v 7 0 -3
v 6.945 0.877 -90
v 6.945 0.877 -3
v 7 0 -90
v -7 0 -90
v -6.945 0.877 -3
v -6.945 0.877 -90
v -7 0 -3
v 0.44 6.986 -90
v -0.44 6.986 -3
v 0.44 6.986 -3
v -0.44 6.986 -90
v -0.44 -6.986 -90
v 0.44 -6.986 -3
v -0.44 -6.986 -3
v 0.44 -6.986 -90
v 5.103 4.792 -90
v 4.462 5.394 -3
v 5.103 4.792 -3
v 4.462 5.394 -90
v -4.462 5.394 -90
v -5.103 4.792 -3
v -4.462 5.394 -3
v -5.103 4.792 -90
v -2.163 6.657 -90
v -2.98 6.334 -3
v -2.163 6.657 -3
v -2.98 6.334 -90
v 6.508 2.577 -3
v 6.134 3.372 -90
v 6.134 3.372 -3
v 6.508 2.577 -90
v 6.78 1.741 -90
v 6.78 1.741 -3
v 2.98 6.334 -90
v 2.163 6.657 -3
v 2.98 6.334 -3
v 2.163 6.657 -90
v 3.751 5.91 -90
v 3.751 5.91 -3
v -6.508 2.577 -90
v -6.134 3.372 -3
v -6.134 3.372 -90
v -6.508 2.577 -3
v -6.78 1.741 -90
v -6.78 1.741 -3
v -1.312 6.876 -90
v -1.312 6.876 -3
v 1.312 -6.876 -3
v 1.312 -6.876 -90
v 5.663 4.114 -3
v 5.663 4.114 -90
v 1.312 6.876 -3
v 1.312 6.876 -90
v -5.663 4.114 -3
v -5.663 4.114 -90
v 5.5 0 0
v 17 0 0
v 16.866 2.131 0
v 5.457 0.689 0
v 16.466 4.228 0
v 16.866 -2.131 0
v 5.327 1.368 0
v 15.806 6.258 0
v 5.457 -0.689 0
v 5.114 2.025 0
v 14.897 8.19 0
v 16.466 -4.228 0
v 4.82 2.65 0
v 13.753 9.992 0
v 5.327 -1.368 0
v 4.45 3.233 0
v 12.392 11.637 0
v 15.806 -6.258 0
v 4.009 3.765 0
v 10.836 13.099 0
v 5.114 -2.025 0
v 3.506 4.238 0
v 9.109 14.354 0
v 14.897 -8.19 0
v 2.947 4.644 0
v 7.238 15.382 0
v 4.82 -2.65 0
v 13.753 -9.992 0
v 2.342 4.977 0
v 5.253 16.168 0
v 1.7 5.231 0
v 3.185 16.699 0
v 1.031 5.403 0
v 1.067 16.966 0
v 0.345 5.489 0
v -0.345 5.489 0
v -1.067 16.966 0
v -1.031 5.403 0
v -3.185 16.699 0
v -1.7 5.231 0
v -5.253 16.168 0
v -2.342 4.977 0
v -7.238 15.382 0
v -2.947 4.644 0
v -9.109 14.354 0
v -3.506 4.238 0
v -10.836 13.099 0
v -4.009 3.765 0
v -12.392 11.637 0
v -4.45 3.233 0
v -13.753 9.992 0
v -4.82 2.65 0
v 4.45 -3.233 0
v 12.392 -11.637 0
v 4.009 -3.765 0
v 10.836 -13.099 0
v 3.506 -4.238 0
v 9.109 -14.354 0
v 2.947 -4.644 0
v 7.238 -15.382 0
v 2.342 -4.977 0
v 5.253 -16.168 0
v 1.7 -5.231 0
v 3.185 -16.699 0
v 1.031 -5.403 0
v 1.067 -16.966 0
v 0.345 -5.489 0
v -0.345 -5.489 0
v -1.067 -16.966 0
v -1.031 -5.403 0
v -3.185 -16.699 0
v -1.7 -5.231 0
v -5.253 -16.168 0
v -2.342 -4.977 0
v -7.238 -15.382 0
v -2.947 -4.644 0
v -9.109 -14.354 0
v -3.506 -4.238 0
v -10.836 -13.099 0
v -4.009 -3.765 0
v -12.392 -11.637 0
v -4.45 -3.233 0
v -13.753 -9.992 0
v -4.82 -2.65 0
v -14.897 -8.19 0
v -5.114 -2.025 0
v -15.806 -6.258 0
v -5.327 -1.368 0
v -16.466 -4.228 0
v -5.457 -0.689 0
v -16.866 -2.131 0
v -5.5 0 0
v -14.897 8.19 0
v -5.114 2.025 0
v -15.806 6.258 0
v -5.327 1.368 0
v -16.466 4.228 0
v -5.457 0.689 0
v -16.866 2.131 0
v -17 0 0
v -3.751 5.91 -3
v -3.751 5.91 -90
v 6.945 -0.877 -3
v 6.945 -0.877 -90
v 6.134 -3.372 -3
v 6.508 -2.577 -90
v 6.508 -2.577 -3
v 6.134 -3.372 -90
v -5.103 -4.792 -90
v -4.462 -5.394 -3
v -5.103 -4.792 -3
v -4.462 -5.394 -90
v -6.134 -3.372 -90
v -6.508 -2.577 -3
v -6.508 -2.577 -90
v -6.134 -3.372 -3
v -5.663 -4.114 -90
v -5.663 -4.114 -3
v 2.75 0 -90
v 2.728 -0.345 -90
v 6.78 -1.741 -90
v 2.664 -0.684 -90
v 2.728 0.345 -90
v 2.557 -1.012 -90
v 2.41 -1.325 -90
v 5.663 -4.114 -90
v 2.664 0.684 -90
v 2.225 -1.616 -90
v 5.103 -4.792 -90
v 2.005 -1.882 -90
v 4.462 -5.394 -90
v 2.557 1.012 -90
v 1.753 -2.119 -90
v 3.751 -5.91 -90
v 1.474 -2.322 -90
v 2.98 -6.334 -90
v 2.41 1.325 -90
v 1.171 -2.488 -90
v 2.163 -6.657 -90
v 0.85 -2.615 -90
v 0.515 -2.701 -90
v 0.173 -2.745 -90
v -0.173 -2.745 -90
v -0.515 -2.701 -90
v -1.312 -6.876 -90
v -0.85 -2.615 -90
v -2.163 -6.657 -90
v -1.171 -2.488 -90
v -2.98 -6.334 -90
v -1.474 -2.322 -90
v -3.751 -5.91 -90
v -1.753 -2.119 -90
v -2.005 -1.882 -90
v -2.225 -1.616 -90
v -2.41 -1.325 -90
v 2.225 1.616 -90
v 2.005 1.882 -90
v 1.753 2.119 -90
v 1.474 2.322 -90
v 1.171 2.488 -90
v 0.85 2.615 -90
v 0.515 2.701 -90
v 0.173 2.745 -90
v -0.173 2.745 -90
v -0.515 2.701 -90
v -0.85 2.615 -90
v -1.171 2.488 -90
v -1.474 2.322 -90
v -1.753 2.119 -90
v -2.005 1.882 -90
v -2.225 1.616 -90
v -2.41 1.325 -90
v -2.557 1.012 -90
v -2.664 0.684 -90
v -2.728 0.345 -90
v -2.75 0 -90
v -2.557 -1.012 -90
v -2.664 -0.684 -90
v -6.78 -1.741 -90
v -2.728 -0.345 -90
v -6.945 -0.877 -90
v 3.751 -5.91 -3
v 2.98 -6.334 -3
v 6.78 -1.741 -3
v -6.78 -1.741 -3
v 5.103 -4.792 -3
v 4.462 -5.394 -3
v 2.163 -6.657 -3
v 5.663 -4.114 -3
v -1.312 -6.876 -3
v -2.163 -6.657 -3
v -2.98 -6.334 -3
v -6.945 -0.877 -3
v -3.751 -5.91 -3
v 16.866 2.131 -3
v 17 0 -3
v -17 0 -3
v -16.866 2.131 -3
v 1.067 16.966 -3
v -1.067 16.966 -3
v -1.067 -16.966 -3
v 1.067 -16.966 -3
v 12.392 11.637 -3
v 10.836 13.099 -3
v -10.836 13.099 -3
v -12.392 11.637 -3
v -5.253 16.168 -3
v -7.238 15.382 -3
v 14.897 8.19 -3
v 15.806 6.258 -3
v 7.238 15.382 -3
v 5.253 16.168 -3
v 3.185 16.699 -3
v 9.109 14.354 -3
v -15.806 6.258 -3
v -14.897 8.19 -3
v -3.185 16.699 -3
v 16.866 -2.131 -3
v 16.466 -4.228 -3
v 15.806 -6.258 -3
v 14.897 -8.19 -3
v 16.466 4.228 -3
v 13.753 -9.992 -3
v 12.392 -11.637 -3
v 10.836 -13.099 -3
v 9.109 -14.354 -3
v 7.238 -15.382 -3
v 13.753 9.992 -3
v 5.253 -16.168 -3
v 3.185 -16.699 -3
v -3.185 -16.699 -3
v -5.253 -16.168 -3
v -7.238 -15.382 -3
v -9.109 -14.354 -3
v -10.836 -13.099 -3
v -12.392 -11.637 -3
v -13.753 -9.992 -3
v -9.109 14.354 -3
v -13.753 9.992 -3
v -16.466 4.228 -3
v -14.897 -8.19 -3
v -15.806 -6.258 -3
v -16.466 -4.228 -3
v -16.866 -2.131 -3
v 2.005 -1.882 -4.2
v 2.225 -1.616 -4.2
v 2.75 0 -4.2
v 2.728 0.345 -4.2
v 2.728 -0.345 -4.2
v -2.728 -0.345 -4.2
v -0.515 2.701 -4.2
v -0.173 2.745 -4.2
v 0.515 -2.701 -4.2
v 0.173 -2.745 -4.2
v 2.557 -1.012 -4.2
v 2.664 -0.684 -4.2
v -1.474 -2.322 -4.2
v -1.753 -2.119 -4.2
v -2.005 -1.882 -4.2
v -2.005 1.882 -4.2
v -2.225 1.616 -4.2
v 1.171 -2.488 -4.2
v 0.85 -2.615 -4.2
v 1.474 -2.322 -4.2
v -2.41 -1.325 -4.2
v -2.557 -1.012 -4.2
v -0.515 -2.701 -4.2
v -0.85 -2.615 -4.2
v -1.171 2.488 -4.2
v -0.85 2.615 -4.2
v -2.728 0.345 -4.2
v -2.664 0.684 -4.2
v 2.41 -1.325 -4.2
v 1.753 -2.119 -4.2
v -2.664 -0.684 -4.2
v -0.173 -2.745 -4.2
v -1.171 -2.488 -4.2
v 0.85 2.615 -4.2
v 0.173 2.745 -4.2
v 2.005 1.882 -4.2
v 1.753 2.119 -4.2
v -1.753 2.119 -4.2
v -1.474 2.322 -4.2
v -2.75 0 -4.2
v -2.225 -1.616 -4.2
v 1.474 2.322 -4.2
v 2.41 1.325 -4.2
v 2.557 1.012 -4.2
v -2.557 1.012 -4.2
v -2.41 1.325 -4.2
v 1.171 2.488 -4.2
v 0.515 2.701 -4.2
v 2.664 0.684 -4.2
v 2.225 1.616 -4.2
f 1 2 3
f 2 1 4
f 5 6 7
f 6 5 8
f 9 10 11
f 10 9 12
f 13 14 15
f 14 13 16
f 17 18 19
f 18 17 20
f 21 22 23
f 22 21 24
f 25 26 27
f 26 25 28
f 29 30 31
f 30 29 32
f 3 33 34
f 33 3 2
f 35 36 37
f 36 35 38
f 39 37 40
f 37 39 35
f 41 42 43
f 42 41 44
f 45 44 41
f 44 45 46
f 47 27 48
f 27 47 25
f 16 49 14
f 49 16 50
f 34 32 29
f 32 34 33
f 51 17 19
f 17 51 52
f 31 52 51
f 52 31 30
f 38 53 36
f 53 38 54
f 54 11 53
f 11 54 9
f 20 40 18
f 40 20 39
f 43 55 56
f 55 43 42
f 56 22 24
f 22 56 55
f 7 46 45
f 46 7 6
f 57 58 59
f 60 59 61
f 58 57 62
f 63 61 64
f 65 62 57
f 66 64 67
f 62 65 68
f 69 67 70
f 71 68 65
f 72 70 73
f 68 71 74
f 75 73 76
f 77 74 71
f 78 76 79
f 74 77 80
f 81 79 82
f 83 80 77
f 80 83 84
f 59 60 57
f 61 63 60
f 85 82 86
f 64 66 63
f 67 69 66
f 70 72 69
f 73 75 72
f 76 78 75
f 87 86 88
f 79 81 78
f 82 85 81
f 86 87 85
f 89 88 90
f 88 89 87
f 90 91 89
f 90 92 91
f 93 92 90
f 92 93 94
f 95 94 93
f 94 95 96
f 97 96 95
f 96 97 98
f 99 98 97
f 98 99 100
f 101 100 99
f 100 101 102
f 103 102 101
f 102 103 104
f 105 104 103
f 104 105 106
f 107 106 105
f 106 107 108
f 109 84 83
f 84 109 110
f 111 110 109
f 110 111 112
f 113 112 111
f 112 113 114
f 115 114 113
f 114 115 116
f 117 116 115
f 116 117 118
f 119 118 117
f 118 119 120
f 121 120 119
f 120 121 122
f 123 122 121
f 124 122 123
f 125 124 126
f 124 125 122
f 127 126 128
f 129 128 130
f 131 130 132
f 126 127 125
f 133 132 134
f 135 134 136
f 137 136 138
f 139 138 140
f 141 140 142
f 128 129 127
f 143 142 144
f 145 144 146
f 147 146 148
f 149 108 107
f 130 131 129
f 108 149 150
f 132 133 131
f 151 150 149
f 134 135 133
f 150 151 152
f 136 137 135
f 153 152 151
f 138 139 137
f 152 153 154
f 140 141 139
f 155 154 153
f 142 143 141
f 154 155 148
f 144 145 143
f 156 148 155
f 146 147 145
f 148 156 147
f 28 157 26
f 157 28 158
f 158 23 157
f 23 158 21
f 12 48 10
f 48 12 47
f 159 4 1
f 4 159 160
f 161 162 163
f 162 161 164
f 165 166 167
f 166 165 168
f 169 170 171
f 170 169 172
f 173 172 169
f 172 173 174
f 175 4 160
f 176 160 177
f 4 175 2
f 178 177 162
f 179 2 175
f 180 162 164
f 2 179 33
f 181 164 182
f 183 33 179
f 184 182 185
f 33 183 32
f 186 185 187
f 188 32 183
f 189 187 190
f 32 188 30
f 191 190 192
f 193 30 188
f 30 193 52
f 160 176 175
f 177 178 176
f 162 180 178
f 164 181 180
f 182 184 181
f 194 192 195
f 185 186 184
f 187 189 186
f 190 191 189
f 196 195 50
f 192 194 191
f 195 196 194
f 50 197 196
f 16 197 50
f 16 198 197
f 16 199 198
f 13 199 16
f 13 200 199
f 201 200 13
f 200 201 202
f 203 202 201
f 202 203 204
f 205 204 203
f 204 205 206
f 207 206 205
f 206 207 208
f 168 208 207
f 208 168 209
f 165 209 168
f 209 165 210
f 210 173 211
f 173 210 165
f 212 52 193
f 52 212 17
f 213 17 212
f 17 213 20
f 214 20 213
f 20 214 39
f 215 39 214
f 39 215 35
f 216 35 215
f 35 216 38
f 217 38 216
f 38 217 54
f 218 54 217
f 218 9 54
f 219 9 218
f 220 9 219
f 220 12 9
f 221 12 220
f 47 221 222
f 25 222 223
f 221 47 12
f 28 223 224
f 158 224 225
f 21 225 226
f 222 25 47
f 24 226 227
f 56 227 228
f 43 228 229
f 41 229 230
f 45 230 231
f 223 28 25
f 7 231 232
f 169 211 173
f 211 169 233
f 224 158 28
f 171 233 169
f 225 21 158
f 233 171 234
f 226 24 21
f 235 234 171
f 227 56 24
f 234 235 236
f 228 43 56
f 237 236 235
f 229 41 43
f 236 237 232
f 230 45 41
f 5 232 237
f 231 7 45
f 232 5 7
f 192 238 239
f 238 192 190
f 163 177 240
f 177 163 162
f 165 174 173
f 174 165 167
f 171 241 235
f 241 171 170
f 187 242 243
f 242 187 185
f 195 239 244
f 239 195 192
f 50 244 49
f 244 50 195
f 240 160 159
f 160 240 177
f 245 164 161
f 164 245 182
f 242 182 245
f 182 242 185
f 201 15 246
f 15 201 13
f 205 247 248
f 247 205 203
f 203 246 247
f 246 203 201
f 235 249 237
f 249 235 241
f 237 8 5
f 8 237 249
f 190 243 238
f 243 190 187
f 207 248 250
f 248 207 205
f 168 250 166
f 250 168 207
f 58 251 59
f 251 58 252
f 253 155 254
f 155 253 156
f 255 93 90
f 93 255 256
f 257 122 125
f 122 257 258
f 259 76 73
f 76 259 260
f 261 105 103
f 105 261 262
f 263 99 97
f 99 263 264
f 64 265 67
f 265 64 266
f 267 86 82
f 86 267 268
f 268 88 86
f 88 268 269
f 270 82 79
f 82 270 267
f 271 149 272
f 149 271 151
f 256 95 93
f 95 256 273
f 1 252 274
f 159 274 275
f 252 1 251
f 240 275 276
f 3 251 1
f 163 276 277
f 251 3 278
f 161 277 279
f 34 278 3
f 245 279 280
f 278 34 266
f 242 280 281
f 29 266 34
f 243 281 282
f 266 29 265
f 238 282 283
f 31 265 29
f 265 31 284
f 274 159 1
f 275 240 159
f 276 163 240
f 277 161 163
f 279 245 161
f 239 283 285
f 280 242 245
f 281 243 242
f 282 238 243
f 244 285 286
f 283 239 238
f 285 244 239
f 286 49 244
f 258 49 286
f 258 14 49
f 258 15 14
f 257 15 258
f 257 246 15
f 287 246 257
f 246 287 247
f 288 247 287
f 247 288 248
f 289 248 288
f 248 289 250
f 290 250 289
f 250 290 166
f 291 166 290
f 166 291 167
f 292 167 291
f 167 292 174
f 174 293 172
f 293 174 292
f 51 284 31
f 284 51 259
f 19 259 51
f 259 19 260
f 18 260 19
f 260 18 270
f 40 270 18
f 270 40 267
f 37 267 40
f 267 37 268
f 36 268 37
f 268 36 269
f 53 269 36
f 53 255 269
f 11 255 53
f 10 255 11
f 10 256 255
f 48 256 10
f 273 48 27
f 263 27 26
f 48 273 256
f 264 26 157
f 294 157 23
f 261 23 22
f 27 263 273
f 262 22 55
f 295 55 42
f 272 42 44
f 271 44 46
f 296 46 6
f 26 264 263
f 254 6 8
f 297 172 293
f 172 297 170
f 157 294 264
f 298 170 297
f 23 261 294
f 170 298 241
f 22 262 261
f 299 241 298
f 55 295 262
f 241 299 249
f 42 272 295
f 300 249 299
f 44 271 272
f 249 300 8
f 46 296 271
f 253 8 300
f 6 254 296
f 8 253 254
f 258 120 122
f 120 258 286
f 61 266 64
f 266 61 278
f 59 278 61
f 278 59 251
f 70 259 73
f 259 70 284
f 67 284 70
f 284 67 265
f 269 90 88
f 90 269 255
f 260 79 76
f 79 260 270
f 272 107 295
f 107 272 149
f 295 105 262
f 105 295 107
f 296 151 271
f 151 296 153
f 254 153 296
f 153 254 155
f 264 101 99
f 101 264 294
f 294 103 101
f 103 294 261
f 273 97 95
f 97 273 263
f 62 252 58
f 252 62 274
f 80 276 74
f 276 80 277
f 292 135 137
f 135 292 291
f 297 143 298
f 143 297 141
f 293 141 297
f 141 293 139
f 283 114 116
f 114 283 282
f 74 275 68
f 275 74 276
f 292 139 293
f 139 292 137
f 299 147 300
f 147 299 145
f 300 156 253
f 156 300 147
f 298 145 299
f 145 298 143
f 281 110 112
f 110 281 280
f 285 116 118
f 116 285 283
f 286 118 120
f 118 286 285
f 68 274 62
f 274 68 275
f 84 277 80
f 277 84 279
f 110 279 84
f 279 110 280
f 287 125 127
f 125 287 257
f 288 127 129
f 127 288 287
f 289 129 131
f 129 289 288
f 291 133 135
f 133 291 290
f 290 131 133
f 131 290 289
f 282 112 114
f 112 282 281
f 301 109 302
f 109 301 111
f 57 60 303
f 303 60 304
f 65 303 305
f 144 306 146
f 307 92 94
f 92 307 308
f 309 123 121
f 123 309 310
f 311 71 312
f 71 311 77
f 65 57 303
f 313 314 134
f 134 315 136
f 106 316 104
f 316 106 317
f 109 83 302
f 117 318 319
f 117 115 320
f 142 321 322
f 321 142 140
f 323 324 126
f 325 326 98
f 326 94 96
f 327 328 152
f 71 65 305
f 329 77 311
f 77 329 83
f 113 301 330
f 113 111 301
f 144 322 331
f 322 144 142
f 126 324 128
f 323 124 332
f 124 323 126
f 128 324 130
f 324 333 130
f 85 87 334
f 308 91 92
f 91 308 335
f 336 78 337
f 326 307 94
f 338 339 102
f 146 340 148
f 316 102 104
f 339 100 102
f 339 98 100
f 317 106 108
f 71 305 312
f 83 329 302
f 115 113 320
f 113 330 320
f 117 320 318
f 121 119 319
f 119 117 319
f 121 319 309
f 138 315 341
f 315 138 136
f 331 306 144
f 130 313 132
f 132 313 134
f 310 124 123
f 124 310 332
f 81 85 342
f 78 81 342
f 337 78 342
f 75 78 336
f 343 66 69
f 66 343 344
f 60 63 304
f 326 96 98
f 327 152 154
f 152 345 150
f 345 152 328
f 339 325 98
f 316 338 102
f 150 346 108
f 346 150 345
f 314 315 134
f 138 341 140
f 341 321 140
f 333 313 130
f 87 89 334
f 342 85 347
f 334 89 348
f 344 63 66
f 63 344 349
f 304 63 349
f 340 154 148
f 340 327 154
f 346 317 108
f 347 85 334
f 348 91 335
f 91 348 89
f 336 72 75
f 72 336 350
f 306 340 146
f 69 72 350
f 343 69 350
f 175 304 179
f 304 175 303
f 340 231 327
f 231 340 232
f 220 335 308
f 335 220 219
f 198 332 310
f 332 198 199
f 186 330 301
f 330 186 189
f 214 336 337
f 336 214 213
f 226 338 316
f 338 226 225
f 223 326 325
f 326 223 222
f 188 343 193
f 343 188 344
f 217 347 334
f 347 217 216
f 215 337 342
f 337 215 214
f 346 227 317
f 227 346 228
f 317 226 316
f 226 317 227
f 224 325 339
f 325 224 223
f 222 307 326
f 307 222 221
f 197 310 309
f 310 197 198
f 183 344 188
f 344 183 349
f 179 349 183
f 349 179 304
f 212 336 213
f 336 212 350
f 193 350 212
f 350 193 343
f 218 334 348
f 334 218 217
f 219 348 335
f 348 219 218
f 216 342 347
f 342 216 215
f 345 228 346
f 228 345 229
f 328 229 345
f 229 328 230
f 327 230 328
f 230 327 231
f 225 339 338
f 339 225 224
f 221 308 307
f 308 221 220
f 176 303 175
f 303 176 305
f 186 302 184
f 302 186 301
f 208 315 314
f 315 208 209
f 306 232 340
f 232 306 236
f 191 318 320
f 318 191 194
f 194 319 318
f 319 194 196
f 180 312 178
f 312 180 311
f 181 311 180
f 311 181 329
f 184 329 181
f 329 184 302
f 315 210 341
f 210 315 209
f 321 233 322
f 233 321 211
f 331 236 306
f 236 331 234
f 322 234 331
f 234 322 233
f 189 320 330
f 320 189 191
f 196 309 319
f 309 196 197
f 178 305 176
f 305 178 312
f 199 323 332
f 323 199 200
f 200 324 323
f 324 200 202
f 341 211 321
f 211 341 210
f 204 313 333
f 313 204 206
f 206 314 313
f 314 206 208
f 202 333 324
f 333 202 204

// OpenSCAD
$fn = 50;


difference() {
	union() {
		translate(v = [0, 0, -90.0000000000]) {
			cylinder(h = 90, r = 7.0000000000);
		}
		translate(v = [0, 0, -3.0000000000]) {
			cylinder(h = 3, r = 17.0000000000);
		}
	}
	union() {
		translate(v = [0, 0, 0]) {
			rotate(a = [0, 0, 0]) {
				difference() {
					union() {
						#translate(v = [0, 0, -90.0000000000]) {
							cylinder(h = 90, r = 2.2500000000);
						}
						#translate(v = [0, 0, -4.2000000000]) {
							cylinder(h = 4.2000000000, r1 = 2.7500000000, r2 = 5.5000000000);
						}
						#translate(v = [0, 0, -90.0000000000]) {
							cylinder(h = 90, r = 2.7500000000);
						}
						#translate(v = [0, 0, -90.0000000000]) {
							cylinder(h = 90, r = 2.2500000000);
						}
					}
					union();
				}
			}
		}
	}
}
